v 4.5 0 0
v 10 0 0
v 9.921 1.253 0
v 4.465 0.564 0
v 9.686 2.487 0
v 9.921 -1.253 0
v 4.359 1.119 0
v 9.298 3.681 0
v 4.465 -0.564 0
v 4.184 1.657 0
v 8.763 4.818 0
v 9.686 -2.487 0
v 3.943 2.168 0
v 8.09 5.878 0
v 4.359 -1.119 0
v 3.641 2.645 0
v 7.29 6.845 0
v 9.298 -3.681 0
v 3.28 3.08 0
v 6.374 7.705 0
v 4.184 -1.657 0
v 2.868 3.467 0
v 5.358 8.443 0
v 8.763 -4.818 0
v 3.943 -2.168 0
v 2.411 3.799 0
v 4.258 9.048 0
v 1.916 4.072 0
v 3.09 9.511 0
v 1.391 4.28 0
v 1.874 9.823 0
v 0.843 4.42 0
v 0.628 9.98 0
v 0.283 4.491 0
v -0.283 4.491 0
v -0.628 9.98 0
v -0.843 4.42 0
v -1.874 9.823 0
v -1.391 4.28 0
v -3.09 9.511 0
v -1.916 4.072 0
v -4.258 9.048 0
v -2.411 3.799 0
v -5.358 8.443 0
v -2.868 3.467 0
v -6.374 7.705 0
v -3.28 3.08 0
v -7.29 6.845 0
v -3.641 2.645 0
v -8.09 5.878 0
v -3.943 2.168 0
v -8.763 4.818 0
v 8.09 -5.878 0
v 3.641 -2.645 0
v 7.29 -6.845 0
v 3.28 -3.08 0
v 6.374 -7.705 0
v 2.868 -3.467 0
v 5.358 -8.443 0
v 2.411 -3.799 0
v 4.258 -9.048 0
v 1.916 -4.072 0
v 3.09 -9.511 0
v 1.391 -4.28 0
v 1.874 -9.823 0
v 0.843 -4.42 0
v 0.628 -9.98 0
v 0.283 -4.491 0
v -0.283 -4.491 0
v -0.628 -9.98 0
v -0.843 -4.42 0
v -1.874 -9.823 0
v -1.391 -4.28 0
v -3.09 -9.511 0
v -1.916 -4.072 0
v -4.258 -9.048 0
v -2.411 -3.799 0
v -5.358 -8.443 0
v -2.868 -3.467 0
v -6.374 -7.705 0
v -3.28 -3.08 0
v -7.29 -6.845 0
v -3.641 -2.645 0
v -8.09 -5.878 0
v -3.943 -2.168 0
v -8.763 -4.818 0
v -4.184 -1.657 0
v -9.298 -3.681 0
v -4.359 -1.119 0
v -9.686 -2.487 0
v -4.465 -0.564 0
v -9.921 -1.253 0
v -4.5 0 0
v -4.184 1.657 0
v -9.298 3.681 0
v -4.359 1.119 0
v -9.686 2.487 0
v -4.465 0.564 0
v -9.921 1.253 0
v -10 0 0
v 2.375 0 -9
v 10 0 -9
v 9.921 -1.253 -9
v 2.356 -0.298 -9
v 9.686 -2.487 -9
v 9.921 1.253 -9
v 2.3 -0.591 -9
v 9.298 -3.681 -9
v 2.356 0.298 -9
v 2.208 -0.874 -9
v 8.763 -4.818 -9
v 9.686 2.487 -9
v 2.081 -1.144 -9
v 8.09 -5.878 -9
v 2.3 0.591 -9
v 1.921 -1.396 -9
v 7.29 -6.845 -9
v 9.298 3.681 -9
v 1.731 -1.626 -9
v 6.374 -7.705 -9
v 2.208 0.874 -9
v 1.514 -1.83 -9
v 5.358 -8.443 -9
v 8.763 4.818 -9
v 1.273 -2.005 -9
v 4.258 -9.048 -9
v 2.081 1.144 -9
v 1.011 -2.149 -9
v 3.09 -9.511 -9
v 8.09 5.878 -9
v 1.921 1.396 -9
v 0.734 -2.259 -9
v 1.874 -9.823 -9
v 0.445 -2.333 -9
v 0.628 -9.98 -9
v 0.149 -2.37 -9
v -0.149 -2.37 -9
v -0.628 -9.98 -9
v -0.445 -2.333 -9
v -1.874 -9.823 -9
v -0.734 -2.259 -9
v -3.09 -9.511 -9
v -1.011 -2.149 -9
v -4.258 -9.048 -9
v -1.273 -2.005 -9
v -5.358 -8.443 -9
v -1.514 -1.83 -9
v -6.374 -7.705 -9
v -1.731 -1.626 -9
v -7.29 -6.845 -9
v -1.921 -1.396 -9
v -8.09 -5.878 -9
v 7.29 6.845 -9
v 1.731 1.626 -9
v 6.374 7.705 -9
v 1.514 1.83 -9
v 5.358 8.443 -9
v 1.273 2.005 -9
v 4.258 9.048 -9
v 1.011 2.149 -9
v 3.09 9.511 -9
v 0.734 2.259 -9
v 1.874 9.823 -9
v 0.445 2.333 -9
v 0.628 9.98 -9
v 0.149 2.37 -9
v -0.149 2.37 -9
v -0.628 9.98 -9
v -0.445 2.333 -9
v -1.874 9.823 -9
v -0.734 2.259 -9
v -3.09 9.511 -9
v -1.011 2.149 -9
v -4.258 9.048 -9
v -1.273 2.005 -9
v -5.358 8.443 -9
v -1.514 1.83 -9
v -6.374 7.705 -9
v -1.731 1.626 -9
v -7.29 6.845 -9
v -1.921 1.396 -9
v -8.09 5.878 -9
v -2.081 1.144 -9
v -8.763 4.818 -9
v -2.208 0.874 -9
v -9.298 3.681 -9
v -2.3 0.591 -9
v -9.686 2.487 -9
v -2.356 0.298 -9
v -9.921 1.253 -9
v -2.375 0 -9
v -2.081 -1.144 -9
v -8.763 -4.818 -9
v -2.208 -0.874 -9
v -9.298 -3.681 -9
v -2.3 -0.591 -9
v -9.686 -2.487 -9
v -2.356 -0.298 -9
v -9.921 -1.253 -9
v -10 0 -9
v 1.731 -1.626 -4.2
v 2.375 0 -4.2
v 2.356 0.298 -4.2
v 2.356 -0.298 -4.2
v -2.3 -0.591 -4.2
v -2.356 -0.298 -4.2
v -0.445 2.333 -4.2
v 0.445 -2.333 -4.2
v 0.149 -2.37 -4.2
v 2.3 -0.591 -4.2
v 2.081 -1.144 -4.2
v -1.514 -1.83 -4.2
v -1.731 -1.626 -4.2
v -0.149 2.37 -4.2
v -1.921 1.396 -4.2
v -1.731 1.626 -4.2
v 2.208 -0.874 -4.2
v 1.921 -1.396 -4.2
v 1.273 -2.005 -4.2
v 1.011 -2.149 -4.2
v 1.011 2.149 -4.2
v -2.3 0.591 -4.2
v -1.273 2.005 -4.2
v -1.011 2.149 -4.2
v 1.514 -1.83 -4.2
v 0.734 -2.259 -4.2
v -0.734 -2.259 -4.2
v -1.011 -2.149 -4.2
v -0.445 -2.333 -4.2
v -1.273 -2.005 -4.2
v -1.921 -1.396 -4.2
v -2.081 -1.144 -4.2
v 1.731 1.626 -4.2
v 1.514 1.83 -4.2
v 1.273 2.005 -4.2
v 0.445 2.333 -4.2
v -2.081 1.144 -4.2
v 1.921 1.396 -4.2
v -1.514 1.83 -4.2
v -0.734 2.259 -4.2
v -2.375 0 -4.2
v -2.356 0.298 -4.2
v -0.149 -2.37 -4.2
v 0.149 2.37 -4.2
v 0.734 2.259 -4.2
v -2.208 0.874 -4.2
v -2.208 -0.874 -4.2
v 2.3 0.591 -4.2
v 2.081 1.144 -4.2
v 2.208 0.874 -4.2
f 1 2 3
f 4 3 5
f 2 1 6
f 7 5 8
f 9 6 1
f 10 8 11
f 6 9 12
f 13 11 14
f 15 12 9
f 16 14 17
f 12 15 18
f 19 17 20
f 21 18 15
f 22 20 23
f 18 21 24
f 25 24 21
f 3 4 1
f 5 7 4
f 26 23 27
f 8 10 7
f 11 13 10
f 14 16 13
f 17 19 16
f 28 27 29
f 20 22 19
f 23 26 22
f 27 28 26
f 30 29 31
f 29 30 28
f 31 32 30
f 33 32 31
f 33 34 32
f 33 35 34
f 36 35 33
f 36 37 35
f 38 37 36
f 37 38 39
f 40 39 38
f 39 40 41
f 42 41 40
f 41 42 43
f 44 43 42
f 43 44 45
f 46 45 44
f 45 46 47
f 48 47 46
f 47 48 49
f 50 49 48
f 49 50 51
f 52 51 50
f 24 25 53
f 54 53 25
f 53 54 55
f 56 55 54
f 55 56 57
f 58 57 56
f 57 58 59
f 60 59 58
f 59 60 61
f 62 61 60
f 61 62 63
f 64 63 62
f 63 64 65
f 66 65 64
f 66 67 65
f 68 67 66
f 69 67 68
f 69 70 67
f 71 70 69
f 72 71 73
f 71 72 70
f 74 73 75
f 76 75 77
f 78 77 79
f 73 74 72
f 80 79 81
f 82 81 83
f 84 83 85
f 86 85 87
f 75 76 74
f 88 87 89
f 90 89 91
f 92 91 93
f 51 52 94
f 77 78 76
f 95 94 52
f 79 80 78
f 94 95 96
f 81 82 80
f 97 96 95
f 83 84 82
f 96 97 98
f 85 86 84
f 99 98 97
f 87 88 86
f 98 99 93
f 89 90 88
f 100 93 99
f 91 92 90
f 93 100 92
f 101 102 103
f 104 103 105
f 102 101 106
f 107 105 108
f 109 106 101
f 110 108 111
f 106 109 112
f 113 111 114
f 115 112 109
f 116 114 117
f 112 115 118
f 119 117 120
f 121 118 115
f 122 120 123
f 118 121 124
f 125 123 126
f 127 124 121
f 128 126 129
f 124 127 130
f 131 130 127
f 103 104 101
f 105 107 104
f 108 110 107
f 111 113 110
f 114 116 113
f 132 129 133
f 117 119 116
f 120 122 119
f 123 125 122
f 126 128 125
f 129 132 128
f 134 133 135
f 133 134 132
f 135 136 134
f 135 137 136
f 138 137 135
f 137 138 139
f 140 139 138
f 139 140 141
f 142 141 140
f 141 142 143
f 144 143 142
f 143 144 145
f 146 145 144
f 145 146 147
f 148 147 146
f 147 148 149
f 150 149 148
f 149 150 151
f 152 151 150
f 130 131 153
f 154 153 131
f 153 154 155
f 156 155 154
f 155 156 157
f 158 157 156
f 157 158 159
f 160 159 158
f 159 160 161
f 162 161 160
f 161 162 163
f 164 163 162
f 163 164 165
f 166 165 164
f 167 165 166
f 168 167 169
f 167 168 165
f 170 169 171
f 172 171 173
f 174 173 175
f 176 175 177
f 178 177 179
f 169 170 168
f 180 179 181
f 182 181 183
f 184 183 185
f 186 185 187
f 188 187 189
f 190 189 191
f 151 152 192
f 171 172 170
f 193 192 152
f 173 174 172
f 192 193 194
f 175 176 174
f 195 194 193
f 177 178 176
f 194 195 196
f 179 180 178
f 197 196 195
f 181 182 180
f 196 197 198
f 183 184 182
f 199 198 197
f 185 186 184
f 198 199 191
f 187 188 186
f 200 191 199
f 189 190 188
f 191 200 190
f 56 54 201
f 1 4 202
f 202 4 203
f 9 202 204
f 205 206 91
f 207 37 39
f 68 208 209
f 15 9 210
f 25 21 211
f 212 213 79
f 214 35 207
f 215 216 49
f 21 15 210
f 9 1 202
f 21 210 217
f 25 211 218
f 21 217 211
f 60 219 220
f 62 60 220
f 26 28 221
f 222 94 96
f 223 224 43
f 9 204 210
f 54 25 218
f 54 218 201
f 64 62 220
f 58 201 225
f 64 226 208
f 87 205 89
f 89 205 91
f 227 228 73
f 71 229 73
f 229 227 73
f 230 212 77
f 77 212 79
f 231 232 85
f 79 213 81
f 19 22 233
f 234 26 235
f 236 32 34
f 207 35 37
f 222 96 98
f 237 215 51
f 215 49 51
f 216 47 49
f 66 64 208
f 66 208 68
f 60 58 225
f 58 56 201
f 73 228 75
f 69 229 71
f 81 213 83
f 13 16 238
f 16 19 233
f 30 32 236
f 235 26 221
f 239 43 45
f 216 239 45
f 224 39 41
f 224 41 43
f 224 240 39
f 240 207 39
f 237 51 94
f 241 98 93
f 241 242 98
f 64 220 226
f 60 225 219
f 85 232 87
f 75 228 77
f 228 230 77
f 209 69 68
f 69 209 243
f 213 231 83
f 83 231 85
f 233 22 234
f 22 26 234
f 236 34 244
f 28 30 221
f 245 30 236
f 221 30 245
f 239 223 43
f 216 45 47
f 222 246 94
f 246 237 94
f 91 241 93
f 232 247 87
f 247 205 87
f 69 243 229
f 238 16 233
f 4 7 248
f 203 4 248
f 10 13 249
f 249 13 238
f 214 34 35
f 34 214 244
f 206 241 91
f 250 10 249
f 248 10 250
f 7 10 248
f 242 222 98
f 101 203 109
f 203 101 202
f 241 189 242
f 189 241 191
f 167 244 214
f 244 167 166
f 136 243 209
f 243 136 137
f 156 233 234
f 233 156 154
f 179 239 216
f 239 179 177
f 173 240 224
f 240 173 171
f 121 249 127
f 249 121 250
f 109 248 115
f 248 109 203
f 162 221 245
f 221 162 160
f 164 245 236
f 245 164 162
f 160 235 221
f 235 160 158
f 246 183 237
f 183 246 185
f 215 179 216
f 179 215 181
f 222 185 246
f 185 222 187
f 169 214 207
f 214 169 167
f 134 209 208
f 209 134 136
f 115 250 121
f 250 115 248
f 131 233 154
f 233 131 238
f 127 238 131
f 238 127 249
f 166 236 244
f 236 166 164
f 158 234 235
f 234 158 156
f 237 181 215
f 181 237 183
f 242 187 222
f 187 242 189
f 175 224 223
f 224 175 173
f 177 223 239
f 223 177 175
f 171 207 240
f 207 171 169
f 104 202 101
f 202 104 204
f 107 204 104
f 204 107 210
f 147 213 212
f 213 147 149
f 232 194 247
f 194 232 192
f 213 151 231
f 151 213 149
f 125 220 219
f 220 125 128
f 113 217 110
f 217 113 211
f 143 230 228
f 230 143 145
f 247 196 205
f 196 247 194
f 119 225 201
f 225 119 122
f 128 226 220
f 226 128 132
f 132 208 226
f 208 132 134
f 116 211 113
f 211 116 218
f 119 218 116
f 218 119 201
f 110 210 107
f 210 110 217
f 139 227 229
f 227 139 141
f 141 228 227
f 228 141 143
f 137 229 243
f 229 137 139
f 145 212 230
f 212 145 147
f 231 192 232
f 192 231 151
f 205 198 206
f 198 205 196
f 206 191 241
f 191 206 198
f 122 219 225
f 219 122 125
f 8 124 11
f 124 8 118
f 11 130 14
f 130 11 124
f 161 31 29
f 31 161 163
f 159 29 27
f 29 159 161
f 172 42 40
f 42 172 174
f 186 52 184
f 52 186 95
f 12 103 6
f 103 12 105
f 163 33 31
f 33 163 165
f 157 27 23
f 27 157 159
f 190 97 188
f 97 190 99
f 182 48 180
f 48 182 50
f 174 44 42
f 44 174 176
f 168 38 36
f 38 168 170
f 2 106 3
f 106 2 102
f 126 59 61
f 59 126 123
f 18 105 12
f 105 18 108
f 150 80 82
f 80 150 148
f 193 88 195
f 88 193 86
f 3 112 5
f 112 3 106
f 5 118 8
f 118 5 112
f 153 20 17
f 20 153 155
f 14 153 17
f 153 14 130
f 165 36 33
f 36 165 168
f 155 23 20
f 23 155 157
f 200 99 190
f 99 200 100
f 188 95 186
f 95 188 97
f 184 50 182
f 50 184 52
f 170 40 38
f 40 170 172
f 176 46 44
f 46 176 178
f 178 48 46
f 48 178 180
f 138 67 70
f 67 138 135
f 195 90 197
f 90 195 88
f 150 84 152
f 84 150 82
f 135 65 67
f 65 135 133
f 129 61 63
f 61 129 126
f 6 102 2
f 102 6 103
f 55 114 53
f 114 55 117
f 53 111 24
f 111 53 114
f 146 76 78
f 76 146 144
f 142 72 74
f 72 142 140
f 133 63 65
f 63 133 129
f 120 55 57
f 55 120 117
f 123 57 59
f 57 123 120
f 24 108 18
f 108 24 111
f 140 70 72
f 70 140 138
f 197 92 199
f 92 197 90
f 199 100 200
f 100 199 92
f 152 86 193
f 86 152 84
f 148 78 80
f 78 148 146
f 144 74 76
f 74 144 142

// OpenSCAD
$fn = 50;


difference() {
	union() {
		translate(v = [0, 0, -9.0000000000]) {
			cylinder(h = 9, r = 10.0000000000);
		}
	}
	union() {
		translate(v = [0, 0, 0]) {
			rotate(a = [0, 0, 0]) {
				difference() {
					union() {
						#translate(v = [0, 0, -9.0000000000]) {
							cylinder(h = 9, r = 2.2500000000);
						}
						#translate(v = [0, 0, -4.2000000000]) {
							cylinder(h = 4.2000000000, r1 = 2.3750000000, r2 = 4.5000000000);
						}
						#translate(v = [0, 0, -9.0000000000]) {
							cylinder(h = 9, r = 2.3750000000);
						}
						#translate(v = [0, 0, -9.0000000000]) {
							cylinder(h = 9, r = 2.2500000000);
						}
					}
					union();
				}
			}
		}
	}
}
